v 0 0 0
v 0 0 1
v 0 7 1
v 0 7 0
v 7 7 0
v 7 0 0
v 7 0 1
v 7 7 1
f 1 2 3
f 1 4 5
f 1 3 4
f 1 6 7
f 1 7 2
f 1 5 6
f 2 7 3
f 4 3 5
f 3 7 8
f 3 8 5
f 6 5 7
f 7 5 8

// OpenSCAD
/* Warning, this is a very basic generator with a lot of approximation 
input data : [VQFN, T5B, 7x7x1mm, 32, , A, C04-21427A]
generated by com.zoubworld.electronics.cad.model3d.Basic
Date : Sun Feb 15 10:50:49 CET 2026
*/

//body
color("black")
translate([0,0,0])
cube([7.0,7.0,1.0], center=false);
